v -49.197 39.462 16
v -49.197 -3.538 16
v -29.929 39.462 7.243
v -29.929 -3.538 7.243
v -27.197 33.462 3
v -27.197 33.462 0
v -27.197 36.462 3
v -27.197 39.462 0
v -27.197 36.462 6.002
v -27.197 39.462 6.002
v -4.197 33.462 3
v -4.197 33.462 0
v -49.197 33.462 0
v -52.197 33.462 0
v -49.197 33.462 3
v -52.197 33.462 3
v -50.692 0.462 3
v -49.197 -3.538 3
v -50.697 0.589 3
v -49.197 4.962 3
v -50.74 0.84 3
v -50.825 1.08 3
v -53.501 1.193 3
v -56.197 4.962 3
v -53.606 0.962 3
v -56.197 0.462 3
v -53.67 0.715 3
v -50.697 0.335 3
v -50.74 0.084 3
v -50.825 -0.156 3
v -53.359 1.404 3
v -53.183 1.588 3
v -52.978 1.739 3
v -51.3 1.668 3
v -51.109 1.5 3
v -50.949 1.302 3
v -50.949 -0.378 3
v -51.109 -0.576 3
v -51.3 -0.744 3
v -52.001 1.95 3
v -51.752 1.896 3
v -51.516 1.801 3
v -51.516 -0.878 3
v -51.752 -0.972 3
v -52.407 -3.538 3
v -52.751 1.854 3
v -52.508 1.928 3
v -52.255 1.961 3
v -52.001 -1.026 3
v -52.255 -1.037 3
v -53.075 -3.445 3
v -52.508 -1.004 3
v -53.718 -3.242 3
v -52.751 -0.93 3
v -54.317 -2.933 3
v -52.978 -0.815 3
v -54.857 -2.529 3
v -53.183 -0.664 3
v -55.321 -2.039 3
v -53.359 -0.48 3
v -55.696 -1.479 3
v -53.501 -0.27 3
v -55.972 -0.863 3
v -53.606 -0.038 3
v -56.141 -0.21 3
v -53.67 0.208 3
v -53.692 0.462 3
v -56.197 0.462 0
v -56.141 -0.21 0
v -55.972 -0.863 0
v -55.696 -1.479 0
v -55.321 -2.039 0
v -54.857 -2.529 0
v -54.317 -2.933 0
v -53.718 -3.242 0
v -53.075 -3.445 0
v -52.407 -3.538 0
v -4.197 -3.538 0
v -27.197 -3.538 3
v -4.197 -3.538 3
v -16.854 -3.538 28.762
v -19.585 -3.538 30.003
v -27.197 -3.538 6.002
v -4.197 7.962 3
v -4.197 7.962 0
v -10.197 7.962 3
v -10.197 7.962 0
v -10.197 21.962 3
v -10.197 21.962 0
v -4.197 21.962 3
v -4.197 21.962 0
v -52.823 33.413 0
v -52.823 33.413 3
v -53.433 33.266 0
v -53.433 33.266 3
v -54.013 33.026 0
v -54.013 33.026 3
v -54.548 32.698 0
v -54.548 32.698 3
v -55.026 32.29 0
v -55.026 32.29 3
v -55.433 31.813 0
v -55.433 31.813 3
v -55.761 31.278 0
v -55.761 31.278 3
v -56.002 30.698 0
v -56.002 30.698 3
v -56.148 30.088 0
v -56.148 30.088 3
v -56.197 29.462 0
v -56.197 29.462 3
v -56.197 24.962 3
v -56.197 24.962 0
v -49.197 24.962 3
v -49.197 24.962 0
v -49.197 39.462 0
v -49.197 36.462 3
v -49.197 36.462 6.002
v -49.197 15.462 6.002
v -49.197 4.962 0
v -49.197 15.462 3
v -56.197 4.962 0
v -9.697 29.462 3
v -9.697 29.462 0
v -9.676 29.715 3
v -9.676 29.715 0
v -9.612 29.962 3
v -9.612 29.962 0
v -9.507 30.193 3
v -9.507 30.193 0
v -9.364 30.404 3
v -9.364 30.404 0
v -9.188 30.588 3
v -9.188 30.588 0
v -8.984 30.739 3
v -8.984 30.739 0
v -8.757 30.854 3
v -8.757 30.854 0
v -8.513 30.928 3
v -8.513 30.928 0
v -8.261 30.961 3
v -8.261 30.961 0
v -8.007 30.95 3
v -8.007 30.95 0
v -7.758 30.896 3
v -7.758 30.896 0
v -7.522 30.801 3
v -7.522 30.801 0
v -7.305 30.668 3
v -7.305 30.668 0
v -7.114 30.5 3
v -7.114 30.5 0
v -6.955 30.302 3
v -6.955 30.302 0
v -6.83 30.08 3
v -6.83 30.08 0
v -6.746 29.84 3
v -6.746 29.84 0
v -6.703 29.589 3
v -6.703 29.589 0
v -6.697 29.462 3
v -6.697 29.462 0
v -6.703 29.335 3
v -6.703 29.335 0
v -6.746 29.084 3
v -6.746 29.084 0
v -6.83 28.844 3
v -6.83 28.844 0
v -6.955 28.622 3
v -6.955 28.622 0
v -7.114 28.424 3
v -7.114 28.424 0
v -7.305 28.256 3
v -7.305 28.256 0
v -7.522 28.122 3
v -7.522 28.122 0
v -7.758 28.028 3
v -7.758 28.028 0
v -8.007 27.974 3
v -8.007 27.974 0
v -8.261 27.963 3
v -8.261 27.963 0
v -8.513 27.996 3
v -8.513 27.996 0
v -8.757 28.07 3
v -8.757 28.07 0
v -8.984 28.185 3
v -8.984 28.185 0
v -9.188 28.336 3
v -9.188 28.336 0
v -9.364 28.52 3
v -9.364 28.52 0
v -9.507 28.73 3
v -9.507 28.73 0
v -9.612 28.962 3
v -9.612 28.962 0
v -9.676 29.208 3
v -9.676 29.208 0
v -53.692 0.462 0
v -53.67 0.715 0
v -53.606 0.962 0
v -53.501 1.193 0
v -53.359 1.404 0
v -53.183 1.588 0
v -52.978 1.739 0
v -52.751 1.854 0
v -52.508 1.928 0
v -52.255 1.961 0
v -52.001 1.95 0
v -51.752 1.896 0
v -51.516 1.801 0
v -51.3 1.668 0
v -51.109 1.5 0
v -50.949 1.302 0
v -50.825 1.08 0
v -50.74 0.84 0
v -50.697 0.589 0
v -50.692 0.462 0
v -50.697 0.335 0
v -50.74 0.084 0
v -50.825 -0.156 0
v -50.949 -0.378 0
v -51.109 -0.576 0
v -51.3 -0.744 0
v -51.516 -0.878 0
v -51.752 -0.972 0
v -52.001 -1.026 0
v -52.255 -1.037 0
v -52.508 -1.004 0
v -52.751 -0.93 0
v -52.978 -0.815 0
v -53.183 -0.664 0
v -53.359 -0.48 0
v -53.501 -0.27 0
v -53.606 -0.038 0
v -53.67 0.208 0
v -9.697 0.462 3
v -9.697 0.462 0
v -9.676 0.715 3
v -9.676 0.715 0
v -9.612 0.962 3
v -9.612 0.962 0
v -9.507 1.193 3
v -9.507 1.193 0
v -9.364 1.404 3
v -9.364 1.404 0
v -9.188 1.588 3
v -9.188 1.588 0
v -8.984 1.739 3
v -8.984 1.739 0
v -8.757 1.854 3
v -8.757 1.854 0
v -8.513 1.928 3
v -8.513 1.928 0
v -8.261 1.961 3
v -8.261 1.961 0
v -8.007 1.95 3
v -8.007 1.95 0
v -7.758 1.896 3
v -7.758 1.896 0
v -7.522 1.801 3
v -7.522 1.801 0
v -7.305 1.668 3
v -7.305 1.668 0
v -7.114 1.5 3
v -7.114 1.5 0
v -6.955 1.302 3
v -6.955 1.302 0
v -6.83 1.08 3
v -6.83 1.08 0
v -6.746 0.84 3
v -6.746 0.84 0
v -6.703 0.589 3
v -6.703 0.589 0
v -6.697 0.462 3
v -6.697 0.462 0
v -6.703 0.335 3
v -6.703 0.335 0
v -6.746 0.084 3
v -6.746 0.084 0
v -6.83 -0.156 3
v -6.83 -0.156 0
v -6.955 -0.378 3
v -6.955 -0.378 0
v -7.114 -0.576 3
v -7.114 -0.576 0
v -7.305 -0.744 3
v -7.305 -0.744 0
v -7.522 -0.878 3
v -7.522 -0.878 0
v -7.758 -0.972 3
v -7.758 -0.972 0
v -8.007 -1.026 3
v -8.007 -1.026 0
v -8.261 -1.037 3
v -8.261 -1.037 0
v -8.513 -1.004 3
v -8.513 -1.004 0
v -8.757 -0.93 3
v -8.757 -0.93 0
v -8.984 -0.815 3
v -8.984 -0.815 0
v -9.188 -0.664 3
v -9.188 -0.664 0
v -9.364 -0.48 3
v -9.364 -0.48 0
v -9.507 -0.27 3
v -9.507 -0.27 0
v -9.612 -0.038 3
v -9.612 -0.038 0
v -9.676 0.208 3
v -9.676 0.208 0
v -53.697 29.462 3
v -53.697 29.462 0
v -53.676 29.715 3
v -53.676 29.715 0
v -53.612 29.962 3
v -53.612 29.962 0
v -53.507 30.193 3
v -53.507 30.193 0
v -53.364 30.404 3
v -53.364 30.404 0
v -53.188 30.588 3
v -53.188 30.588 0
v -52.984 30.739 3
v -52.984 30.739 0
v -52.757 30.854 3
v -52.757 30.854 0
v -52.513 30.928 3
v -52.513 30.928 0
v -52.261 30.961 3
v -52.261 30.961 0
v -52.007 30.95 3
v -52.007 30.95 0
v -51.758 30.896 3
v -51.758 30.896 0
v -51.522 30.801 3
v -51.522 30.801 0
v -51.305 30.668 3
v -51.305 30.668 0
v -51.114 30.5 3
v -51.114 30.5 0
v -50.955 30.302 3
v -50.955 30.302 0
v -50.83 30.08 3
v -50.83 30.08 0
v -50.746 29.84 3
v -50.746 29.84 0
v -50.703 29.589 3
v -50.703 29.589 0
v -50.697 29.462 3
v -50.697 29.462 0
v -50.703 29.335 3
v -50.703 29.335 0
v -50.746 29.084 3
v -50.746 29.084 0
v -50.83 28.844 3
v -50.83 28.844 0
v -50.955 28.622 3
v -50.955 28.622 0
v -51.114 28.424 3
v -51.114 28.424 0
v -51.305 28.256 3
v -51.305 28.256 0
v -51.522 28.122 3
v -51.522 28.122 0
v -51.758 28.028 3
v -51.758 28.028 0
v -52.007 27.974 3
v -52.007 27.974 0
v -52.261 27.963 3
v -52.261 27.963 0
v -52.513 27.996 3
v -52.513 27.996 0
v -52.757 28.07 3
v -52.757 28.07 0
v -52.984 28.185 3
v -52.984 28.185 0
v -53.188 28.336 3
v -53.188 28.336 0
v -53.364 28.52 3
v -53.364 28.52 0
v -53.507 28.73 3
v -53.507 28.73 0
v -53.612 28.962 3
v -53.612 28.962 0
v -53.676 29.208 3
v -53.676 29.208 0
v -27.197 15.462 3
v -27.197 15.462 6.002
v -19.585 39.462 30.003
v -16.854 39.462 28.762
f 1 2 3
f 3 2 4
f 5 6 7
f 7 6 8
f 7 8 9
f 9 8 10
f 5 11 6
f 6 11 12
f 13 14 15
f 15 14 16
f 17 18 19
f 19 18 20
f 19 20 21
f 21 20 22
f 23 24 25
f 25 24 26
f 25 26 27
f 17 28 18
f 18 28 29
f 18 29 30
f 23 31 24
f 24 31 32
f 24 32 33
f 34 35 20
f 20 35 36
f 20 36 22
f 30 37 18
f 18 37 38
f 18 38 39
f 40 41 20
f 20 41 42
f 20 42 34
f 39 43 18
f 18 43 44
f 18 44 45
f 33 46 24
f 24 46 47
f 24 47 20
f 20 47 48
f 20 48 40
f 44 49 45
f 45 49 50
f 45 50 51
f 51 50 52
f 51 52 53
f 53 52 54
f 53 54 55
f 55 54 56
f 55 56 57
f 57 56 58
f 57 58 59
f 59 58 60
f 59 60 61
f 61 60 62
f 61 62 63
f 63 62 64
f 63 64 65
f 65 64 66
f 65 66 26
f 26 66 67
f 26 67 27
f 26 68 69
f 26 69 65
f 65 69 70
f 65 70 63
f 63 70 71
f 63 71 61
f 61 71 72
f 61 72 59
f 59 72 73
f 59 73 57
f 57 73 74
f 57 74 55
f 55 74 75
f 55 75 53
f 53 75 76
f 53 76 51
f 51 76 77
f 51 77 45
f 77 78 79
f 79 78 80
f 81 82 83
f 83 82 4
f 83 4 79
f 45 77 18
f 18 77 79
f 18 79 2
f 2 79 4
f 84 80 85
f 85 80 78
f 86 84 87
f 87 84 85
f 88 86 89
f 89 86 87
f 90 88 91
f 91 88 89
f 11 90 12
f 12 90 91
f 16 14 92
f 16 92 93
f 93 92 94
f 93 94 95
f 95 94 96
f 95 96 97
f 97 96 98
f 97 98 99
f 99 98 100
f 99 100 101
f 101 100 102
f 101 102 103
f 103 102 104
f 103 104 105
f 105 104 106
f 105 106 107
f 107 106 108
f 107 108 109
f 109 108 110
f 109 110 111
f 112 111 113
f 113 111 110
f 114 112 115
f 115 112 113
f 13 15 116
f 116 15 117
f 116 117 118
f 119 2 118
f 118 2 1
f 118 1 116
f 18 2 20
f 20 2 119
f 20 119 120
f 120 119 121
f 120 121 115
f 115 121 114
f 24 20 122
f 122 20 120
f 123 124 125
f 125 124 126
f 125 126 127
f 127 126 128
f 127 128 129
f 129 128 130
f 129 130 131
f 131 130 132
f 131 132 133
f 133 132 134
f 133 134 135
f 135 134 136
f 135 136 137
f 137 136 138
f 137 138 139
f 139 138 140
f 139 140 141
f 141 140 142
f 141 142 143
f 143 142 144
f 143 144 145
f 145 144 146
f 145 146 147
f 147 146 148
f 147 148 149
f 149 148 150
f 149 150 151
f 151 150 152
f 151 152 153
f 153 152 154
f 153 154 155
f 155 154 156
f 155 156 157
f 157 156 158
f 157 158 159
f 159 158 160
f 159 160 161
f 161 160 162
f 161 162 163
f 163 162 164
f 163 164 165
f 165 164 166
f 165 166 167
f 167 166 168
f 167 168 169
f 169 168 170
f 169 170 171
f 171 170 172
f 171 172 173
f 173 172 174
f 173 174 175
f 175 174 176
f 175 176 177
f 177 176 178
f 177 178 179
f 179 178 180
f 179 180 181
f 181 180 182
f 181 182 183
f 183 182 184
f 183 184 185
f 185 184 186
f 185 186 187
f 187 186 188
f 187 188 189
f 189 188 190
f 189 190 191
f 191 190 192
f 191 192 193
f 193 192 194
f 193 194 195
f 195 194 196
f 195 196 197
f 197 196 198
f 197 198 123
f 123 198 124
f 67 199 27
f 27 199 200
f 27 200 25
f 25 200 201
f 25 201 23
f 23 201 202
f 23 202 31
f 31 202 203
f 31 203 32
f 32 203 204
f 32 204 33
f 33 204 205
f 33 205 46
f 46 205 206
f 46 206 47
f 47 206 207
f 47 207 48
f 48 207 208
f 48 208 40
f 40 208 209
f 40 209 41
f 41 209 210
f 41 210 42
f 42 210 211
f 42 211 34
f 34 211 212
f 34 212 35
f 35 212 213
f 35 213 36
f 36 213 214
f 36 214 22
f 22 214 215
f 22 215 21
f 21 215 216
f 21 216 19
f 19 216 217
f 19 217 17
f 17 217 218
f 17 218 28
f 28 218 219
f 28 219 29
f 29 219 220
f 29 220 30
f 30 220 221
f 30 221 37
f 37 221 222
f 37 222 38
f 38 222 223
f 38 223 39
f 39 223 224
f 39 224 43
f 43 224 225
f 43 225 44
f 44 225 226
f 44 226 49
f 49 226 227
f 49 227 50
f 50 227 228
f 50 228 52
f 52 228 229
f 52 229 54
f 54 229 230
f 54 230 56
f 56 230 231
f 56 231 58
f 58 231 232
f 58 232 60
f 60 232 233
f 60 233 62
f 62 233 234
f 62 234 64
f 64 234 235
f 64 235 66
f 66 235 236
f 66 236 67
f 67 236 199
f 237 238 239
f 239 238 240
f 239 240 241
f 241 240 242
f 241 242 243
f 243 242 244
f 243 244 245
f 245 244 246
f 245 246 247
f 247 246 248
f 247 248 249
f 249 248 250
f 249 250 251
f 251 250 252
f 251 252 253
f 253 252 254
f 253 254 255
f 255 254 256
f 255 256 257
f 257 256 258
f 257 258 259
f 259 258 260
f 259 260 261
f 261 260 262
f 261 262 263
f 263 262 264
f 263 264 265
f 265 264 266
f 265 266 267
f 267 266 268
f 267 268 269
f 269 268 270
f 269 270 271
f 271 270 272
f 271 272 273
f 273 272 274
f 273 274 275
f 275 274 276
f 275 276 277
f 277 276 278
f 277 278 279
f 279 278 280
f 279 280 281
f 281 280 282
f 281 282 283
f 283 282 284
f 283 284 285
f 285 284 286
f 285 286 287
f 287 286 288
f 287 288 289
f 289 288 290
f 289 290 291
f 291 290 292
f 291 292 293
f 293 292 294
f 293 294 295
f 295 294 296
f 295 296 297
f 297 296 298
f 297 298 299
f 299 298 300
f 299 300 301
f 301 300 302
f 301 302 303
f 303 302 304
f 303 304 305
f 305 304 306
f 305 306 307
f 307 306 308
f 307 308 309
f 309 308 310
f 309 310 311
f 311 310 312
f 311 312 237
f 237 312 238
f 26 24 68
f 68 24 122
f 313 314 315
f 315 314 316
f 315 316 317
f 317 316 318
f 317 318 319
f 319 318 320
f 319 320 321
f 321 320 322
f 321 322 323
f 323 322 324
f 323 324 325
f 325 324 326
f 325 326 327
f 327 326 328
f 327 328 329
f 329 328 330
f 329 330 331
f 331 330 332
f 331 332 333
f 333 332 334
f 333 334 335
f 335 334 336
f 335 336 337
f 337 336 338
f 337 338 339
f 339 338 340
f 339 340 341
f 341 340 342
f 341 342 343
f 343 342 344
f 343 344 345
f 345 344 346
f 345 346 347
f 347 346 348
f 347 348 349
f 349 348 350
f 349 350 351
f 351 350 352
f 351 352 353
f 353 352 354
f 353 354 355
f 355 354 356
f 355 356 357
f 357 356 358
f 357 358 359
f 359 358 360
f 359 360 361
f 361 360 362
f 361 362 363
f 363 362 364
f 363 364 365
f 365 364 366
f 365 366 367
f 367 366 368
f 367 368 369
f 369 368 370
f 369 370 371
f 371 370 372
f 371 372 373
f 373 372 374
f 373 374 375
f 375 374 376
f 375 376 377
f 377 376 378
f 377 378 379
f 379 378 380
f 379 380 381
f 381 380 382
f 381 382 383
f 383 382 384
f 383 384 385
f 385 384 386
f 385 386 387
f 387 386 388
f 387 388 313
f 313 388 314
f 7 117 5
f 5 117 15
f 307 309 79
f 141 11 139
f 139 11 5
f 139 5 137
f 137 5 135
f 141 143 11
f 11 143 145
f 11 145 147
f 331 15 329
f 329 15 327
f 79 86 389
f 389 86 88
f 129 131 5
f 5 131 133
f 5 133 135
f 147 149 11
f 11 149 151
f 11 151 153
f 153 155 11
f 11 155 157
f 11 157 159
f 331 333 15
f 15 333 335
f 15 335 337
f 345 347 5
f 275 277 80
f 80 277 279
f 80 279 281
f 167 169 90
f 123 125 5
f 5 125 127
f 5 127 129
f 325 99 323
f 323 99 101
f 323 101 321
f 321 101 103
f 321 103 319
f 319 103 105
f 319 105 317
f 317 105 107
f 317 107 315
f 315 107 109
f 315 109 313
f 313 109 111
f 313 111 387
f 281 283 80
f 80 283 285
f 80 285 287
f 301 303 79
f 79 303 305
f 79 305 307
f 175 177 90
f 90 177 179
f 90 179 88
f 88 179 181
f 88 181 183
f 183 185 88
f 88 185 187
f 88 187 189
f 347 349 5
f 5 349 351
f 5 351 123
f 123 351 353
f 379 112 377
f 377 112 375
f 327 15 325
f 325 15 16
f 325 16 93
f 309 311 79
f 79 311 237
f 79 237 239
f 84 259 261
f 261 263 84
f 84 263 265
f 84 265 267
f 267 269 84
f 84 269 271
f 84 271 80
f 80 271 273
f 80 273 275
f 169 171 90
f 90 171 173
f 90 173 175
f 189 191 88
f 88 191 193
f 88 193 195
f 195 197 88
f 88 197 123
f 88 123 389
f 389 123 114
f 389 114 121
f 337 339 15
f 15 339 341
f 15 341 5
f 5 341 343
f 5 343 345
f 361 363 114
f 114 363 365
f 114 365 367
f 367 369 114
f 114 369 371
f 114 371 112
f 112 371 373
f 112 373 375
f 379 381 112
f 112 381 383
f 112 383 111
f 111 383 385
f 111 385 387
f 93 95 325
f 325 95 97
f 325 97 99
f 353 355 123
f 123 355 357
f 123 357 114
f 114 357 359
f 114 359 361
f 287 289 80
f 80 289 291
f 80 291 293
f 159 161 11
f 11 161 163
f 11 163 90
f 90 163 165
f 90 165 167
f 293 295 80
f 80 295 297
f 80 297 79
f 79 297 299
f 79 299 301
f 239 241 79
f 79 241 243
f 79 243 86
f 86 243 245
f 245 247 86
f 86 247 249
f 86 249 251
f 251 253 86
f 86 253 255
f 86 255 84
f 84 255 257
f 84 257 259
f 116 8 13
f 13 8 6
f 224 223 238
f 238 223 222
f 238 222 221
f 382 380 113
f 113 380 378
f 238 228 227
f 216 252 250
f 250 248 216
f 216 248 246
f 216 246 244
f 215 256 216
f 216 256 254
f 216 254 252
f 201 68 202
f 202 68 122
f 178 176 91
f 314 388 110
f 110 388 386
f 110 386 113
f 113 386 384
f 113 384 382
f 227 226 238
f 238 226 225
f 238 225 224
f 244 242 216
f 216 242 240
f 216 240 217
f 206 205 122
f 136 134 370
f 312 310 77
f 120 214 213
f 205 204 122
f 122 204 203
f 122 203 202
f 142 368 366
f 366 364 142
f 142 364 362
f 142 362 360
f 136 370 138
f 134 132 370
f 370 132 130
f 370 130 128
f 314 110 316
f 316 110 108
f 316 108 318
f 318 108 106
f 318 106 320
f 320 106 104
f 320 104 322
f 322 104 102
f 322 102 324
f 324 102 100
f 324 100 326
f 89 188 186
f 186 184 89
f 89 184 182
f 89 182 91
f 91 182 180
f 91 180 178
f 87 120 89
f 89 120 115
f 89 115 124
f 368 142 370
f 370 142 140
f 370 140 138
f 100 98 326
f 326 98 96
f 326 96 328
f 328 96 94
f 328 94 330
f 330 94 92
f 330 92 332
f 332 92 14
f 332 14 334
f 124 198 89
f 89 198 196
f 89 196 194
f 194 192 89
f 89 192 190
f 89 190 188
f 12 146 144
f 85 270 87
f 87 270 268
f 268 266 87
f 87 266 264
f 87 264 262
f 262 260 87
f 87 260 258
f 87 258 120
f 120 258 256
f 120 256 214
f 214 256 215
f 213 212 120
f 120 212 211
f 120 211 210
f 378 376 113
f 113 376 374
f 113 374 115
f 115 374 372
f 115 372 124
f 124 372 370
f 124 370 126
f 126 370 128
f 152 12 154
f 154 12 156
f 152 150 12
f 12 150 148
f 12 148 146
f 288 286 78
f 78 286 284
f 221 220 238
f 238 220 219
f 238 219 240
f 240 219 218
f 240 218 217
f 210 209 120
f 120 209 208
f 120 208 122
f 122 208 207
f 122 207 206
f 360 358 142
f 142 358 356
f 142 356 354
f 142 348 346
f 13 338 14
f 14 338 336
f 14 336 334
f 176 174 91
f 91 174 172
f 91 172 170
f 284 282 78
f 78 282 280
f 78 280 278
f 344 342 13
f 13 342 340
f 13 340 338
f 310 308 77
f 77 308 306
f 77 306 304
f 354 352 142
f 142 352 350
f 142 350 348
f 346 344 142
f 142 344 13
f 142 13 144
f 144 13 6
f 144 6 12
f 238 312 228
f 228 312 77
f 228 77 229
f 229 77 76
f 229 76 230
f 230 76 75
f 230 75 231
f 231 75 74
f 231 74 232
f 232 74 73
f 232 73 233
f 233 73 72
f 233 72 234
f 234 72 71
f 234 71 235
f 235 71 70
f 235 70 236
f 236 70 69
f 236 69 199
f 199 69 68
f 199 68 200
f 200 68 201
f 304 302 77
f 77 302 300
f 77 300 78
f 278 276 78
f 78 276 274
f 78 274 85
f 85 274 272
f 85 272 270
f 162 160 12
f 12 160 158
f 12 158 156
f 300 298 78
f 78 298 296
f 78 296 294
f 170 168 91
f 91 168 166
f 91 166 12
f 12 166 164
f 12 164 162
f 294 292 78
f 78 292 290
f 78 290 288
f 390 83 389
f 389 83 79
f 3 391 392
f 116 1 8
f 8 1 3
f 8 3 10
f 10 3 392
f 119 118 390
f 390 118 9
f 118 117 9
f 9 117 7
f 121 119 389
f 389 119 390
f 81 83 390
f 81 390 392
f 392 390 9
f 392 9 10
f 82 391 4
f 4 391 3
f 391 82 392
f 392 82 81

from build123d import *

# Parameters (mm, degrees)
CROQUIS1_R              = 1.5
SALIENTE_EXTRUIR1_DEPTH = 3
CROQUIS3_W              = 22
CROQUIS3_H              = 37
SALIENTE_EXTRUIR2_DEPTH = 13
CORTAR_EXTRUIR1_START   = -37
CORTAR_EXTRUIR1_DEPTH   = 37
SALIENTE_EXTRUIR4_DEPTH = 6
CROQUIS7_W              = 3.002058729
CROQUIS7_H              = 21
CORTAR_EXTRUIR2_DEPTH   = 22.000001
CROQUIS8_W              = 3
CROQUIS8_H              = 43
SALIENTE_EXTRUIR5_DEPTH = 25


with BuildPart() as part:
    # Croquis1 → Saliente-Extruir1 (new body)
    with BuildSketch(Plane.XY):
        with BuildLine():
            Line((-4.197309417, 33.461883408), (-52.197309417, 33.461883408))
            ThreePointArc((-52.197309417, 33.461883408), (-55.025736542, 32.290310533), (-56.197309417, 29.461883408))
            Line((-56.197309417, 29.461883408), (-56.197309417, 24.961883408))
            Line((-56.197309417, 24.961883408), (-49.197309417, 24.961883408))
            Line((-49.197309417, 24.961883408), (-49.197309417, 4.961883408))
            Line((-49.197309417, 4.961883408), (-56.197309417, 4.961883408))
            Line((-56.197309417, 4.961883408), (-56.197309417, 0.461883408))
            ThreePointArc((-56.197309417, 0.461883408), (-55.099110766, -2.293519818), (-52.406664651, -3.538116592))
            Line((-52.406664651, -3.538116592), (-4.197309417, -3.538116592))
            Line((-4.197309417, -3.538116592), (-4.197309417, 7.961883408))
            Line((-4.197309417, 7.961883408), (-10.197309417, 7.961883408))
            Line((-10.197309417, 7.961883408), (-10.197309417, 21.961883408))
            Line((-10.197309417, 21.961883408), (-4.197309417, 21.961883408))
            Line((-4.197309417, 21.961883408), (-4.197309417, 33.461883408))
        make_face()
        with Locations((-52.19152813, 0.461883408)):
            Circle(CROQUIS1_R, mode=Mode.SUBTRACT)
        with Locations((-8.197309417, 0.461883408)):
            Circle(CROQUIS1_R, mode=Mode.SUBTRACT)
        with Locations((-52.197309417, 29.461883408)):
            Circle(CROQUIS1_R, mode=Mode.SUBTRACT)
        with Locations((-8.197309417, 29.461883408)):
            Circle(CROQUIS1_R, mode=Mode.SUBTRACT)
    extrude(amount=SALIENTE_EXTRUIR1_DEPTH)

    # Croquis3 → Saliente-Extruir2 (add)
    with BuildSketch(Plane.XY.offset(3)):
        with Locations((-38.197309417, 14.961883408)):
            Rectangle(CROQUIS3_W, CROQUIS3_H)
    extrude(amount=SALIENTE_EXTRUIR2_DEPTH)

    # Croquis4 → Cortar-Extruir1 (cut)
    with BuildSketch(Plane.XZ.offset(3.538116592).offset(CORTAR_EXTRUIR1_START)):
        Polygon((-27.197309417, 16), (-27.197309417, 6.002058729), (-49.197309417, 16), align=None)
    extrude(amount=CORTAR_EXTRUIR1_DEPTH, mode=Mode.SUBTRACT)

    # Croquis6 → Saliente-Extruir4 (add)
    with BuildSketch(Plane(origin=(0, 33.461883408, 0), x_dir=(1, 0, 0), z_dir=(0, 1, 0))):
        Polygon((-27.197309417, -6.002058729), (-49.197309417, -16), (-49.197309417, 0), (-27.197309417, 0), align=None)
    extrude(amount=SALIENTE_EXTRUIR4_DEPTH)

    # Croquis7 → Cortar-Extruir2 (cut)
    with BuildSketch(Plane(origin=(-27.197309417, 0, 0), x_dir=(0, 0, -1), z_dir=(1, 0, 0))):
        with Locations((-4.501029365, 25.961883408)):
            Rectangle(CROQUIS7_W, CROQUIS7_H)
    extrude(amount=-CORTAR_EXTRUIR2_DEPTH, mode=Mode.SUBTRACT)

    # Croquis8 → Saliente-Extruir5 (add)
    with BuildSketch(Plane(origin=(-2.394740987, 0, -5.269515022), x_dir=(0.9103985682863143, 0, -0.4137323372208525), z_dir=(0.4137323372208525, 0, 0.9103985682863143))):
        with Locations((-28.743637341, 17.961883408)):
            Rectangle(CROQUIS8_W, CROQUIS8_H)
    extrude(amount=SALIENTE_EXTRUIR5_DEPTH)


solid = part.part
